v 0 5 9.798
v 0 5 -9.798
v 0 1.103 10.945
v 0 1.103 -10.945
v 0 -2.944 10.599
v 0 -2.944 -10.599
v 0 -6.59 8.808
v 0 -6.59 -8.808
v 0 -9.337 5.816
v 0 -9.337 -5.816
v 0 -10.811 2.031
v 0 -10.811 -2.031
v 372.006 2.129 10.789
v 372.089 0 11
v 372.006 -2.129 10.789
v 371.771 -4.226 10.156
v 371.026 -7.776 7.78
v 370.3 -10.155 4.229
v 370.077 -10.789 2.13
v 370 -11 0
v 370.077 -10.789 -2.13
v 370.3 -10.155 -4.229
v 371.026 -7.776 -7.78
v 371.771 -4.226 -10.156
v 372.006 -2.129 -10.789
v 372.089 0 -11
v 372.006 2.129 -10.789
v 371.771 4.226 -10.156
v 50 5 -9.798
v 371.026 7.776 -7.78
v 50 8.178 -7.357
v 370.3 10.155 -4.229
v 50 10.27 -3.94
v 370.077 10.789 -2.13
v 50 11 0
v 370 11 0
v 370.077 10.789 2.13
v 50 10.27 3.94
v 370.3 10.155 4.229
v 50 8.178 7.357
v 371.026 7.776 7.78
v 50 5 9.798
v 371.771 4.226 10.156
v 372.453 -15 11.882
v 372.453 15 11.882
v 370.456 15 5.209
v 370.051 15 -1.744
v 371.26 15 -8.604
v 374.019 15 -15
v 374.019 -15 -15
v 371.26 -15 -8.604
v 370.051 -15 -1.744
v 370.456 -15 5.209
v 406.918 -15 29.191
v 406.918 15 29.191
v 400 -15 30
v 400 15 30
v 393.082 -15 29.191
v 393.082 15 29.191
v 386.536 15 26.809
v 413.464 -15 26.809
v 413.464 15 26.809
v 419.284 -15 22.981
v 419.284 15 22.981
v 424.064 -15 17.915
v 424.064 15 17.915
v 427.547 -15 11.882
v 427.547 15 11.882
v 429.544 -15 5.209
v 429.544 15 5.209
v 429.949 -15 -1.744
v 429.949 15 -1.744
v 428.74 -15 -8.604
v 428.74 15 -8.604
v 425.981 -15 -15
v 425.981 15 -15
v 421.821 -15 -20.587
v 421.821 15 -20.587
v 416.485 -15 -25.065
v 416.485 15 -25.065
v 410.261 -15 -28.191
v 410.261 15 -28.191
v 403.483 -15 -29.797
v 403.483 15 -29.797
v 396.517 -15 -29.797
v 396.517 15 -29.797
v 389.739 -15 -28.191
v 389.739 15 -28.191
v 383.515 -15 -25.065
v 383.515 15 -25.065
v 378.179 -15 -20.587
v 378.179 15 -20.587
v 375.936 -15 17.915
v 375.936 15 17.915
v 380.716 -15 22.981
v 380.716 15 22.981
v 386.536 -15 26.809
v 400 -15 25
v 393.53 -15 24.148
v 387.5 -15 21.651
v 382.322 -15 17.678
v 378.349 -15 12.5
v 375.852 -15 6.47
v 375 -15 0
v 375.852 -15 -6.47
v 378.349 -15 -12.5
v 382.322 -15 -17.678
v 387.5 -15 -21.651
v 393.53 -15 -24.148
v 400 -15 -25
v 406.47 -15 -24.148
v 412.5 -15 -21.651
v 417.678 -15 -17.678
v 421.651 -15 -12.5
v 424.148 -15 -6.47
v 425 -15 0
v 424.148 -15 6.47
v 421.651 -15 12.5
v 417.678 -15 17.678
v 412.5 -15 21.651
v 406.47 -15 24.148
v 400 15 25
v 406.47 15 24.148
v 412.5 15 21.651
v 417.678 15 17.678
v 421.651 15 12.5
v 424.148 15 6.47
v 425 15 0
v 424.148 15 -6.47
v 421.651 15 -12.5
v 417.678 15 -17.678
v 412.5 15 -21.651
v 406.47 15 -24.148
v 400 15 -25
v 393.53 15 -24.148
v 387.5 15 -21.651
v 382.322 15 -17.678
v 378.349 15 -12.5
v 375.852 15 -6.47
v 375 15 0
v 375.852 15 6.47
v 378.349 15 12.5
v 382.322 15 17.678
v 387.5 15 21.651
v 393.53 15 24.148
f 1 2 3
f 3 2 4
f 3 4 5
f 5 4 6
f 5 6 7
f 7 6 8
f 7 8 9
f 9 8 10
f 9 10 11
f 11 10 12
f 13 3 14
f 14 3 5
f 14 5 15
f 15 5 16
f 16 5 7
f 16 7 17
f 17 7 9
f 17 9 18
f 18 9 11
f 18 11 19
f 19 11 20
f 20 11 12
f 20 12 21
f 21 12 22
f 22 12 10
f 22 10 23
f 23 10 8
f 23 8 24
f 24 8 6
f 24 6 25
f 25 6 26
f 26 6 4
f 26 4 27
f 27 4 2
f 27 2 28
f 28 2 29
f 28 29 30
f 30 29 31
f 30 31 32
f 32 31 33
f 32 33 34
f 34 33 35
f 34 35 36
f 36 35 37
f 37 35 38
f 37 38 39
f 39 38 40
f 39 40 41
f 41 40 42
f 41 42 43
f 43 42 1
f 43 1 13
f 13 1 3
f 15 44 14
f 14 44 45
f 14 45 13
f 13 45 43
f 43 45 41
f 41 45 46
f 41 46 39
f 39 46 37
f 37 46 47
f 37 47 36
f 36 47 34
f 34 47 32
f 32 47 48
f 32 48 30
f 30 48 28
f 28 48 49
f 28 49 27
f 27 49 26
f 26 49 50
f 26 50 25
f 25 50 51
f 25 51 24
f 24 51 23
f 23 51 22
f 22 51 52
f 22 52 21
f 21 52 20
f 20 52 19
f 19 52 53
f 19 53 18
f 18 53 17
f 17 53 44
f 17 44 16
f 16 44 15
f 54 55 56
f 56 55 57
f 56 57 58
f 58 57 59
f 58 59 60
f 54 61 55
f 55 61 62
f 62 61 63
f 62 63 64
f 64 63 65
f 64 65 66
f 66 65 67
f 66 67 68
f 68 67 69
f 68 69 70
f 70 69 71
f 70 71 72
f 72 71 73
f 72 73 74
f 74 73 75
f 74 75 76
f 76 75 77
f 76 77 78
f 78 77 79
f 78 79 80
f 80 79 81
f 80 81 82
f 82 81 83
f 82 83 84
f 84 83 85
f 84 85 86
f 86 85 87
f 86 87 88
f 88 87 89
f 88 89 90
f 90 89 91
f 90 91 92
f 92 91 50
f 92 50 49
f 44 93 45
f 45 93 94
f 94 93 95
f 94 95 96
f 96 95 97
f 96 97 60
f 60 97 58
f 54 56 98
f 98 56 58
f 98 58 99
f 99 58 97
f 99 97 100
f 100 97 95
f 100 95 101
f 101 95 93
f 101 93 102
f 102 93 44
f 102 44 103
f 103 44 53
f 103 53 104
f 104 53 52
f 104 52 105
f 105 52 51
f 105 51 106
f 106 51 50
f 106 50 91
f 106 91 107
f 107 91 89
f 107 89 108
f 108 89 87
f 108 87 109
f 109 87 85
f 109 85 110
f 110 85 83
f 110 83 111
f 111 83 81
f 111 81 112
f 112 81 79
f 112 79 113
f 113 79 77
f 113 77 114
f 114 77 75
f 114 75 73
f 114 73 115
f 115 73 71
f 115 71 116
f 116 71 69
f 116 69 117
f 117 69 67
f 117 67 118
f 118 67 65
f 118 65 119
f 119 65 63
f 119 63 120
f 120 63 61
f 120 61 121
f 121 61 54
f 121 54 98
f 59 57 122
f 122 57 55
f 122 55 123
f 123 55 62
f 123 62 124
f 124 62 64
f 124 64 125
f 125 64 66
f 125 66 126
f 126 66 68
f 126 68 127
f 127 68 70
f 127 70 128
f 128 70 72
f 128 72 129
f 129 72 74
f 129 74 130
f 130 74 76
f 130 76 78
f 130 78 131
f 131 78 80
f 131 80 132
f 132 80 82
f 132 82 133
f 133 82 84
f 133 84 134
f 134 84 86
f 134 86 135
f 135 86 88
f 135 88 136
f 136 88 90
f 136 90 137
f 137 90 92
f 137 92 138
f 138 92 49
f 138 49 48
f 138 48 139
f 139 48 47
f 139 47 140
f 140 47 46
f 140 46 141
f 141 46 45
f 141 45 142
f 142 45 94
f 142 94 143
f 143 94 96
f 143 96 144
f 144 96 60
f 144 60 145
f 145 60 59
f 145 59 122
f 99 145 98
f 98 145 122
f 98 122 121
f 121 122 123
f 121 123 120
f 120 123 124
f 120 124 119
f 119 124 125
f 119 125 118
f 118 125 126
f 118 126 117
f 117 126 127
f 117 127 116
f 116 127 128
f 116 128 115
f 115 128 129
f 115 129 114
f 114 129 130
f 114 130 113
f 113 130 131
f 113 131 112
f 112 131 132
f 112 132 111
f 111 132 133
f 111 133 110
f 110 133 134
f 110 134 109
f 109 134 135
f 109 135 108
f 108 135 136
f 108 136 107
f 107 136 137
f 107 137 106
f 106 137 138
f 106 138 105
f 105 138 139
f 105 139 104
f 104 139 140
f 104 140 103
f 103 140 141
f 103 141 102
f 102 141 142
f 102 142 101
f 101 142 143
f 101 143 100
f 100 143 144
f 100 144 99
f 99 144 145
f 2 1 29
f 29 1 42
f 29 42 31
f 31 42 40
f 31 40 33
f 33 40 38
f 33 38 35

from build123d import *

# Parameters (mm, degrees)
BOSS_EXTRUDE1_DEPTH      = 15
BOSS_EXTRUDE1_DEPTH_BACK = 15
SKETCH1_3_R              = 30.000000000000046
SKETCH2_R                = 25.000000000000007
CUT_EXTRUDE1_DEPTH       = 30
CUT_EXTRUDE2_DEPTH       = 50


with BuildPart() as part:
    # Sketch1 → Revolve1 (revolve)
    with BuildSketch(Plane(origin=(0, 0, 0), x_dir=(1, 0, 0), z_dir=(0, 1, 0))):
        with BuildLine():
            Line((0, 10.999999999999996), (0, 0))
            Line((0, 0), (369.99999999999994, 0))
            ThreePointArc((369.99999999999994, 3.67e-15), (370.5269856969365, 5.598341530437239), (372.0894285260945, 11.000000000000714))
            Line((372.0894285260947, 10.999999999999996), (0, 10.999999999999996))
        make_face()
    revolve(axis=Axis((0, 0, 0), (1, 0, 0)))

    # Sketch1<3> → Boss-Extrude1 (add, two sides: drawn at the far end of the back side and taken through both)
    with BuildSketch(Plane(origin=(0, 0, 0), x_dir=(1, 0, 0), z_dir=(0, 1, 0)).offset(-BOSS_EXTRUDE1_DEPTH_BACK)):
        with Locations((400, -2.132e-14)):
            Circle(SKETCH1_3_R)
    extrude(amount=BOSS_EXTRUDE1_DEPTH + BOSS_EXTRUDE1_DEPTH_BACK)

    # Sketch2 → Cut-Extrude1 (cut)
    with BuildSketch(Plane(origin=(0, 15, 0), x_dir=(1, 0, 0), z_dir=(0, 1, 0))):
        with Locations((400, 0)):
            Circle(SKETCH2_R)
    extrude(amount=-CUT_EXTRUDE1_DEPTH, mode=Mode.SUBTRACT)

    # Sketch3 → Cut-Extrude2 (cut)
    with BuildSketch(Plane.ZY):
        with BuildLine():
            Line((-9.797958971132708, 5), (0, 5))
            Line((0, 5), (9.797958971132708, 5))
            ThreePointArc((9.797958971132708, 5), (6.7e-16, 10.999999999999996), (-9.797958971132706, 5.000000000000003))
        make_face()
    extrude(amount=-CUT_EXTRUDE2_DEPTH, mode=Mode.SUBTRACT)


solid = part.part
